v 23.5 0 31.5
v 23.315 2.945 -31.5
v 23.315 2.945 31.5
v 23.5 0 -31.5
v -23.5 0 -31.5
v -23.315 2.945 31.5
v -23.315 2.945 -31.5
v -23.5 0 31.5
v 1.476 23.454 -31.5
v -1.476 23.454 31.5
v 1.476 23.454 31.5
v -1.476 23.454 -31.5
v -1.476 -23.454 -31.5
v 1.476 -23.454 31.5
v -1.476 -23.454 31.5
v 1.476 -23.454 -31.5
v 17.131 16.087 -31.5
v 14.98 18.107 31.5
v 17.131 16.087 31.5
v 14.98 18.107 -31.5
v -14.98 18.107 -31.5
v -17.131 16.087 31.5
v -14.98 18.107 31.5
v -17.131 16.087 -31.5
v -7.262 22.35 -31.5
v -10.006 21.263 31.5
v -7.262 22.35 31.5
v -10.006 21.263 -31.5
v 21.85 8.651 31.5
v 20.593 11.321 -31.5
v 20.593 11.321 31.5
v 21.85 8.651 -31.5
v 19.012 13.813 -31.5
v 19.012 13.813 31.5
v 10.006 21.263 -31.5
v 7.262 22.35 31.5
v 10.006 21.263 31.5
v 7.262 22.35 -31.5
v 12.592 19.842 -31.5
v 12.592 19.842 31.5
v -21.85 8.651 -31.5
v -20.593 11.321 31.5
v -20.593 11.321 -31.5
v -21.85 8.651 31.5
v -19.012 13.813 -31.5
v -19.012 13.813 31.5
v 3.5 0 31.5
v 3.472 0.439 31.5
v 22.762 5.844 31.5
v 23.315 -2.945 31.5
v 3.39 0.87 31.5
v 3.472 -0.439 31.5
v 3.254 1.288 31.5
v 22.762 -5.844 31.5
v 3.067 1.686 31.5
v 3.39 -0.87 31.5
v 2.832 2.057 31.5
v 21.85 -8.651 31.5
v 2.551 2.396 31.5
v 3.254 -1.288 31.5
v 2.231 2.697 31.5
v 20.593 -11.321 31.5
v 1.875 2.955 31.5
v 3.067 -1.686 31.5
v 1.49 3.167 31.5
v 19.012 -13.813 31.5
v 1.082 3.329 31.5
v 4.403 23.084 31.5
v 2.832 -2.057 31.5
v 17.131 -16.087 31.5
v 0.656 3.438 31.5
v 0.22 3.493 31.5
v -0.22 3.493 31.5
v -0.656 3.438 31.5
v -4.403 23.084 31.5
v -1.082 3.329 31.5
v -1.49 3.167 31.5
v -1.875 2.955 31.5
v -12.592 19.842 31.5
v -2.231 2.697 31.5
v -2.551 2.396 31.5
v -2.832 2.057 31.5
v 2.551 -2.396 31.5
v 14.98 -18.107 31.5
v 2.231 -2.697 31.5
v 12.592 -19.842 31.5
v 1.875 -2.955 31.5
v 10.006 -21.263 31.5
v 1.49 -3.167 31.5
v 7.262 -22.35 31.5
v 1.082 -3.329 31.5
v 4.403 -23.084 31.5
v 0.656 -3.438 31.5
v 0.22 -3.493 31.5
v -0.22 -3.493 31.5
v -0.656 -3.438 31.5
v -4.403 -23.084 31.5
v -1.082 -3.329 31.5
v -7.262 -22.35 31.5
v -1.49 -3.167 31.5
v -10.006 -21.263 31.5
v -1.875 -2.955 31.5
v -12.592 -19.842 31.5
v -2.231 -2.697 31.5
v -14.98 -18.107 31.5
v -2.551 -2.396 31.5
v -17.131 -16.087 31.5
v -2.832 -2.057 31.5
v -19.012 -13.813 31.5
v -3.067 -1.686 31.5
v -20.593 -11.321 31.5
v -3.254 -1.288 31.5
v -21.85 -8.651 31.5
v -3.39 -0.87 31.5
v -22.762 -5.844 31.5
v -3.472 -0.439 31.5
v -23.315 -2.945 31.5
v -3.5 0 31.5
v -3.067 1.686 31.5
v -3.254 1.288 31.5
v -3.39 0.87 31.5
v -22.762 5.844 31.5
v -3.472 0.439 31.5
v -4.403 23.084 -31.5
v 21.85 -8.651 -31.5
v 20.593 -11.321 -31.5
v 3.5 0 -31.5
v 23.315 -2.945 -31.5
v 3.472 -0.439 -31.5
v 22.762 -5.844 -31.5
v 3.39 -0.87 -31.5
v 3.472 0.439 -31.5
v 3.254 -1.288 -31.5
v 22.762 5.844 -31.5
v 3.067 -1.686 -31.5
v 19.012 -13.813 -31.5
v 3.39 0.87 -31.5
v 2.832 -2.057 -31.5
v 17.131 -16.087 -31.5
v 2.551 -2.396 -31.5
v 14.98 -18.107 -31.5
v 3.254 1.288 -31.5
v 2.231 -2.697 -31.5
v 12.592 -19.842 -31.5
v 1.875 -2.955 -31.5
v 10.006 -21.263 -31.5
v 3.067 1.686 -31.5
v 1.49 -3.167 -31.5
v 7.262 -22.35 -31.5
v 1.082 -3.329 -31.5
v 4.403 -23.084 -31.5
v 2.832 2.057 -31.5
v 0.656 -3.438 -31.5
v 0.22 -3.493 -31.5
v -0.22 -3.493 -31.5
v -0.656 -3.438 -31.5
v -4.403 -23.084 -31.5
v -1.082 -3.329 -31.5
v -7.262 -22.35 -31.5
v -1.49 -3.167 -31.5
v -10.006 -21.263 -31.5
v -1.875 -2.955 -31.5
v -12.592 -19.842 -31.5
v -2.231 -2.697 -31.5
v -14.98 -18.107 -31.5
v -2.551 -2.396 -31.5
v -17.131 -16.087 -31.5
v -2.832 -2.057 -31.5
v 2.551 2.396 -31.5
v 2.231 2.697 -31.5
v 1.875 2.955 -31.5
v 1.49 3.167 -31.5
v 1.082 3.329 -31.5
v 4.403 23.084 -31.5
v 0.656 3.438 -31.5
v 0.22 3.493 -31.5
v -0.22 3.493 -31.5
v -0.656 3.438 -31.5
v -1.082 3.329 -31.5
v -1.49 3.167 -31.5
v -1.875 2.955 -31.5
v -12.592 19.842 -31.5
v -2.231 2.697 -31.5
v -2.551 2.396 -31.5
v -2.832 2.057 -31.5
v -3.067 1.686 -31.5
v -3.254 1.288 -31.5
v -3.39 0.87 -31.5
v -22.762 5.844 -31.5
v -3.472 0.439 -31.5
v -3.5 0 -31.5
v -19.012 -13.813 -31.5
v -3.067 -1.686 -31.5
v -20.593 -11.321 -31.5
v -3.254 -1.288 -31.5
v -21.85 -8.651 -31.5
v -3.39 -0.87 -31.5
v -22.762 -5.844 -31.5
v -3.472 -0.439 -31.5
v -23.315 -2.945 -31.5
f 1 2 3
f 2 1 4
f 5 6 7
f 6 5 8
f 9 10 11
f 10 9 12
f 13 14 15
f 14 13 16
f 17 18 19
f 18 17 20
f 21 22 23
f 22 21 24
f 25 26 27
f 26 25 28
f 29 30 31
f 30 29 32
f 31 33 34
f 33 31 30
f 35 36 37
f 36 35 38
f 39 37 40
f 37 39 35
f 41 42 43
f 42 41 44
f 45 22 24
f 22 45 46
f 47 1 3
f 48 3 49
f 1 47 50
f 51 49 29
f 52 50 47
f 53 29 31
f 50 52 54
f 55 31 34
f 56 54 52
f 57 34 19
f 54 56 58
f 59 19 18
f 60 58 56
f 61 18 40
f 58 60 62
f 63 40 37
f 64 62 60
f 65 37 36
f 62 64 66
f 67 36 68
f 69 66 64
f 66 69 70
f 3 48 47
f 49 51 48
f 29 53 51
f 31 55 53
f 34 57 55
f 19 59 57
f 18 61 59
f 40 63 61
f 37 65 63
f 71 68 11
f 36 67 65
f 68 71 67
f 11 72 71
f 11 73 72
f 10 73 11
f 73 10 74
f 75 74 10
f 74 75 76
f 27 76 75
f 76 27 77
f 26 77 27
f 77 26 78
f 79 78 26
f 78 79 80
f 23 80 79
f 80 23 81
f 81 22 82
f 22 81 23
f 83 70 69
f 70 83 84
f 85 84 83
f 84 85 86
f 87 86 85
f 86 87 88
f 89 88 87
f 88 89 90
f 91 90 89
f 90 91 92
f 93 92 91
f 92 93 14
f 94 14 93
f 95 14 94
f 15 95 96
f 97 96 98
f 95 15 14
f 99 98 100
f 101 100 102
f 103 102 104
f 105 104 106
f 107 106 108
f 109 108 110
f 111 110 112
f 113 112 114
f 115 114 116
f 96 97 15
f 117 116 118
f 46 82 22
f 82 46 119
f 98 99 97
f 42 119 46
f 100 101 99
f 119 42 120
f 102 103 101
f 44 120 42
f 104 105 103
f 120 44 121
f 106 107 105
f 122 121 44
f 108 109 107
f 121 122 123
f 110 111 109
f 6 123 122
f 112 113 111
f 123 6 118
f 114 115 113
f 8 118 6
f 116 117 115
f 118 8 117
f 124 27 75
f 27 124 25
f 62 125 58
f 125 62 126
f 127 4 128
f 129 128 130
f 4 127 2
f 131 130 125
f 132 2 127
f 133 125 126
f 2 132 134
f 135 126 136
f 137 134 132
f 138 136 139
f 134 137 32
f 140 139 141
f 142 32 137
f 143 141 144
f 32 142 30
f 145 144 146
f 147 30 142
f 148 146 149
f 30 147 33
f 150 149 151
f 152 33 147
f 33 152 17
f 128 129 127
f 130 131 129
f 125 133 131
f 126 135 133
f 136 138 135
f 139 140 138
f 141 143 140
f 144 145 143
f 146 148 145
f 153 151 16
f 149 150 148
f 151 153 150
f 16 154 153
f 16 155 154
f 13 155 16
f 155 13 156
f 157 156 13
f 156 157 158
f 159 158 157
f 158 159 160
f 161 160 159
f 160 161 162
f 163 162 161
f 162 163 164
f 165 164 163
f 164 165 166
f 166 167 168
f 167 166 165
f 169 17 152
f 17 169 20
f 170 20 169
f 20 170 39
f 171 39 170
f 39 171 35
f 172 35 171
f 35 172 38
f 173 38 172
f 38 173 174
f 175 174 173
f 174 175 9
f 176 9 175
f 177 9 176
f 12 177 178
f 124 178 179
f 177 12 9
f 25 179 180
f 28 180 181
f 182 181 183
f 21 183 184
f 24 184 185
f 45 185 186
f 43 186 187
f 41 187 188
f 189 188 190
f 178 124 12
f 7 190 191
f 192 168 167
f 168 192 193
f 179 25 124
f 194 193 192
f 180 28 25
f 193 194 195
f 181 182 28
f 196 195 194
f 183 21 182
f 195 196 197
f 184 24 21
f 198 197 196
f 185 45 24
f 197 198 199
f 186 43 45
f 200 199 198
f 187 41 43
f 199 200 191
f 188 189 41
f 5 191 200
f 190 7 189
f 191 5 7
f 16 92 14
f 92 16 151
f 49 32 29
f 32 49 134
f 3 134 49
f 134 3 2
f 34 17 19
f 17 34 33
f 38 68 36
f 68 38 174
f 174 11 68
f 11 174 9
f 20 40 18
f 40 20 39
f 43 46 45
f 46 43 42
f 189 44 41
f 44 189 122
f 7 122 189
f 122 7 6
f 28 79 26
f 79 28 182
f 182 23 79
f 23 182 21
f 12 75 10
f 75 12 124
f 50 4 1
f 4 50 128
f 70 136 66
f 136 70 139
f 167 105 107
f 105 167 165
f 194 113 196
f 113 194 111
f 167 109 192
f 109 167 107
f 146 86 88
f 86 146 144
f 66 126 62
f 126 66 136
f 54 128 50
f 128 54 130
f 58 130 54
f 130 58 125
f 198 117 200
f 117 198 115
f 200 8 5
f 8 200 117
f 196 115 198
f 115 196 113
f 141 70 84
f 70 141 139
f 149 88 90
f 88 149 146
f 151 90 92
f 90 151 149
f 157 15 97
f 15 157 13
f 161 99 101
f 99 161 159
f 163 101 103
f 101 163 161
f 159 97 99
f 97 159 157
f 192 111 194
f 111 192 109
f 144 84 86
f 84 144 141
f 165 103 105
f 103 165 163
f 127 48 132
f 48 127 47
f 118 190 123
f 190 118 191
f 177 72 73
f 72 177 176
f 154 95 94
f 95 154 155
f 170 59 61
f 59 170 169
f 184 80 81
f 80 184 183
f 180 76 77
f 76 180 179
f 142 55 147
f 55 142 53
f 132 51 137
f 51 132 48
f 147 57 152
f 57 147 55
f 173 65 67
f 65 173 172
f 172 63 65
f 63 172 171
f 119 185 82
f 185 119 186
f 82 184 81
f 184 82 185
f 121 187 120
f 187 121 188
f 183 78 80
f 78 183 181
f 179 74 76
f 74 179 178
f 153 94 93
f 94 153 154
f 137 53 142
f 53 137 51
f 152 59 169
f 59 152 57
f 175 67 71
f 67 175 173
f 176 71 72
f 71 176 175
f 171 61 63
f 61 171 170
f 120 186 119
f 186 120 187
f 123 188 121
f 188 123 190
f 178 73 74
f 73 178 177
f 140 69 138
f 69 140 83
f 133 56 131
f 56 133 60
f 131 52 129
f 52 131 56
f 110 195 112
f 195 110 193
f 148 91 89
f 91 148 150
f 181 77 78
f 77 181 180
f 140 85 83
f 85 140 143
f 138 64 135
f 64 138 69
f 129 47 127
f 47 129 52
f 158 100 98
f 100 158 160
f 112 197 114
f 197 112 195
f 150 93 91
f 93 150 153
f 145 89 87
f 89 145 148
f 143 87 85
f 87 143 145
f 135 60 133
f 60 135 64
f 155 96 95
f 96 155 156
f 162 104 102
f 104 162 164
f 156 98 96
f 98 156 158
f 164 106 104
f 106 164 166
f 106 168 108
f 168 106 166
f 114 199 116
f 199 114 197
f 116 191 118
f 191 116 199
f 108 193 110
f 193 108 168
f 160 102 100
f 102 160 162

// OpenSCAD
$fn = 50;


difference() {
	union() {
		translate(v = [0, 0, -31.5000000000]) {
			cylinder(h = 63, r = 23.5000000000);
		}
	}
	union() {
		translate(v = [0, 0, -100.0000000000]) {
			cylinder(h = 200, r = 3.5000000000);
		}
	}
}
